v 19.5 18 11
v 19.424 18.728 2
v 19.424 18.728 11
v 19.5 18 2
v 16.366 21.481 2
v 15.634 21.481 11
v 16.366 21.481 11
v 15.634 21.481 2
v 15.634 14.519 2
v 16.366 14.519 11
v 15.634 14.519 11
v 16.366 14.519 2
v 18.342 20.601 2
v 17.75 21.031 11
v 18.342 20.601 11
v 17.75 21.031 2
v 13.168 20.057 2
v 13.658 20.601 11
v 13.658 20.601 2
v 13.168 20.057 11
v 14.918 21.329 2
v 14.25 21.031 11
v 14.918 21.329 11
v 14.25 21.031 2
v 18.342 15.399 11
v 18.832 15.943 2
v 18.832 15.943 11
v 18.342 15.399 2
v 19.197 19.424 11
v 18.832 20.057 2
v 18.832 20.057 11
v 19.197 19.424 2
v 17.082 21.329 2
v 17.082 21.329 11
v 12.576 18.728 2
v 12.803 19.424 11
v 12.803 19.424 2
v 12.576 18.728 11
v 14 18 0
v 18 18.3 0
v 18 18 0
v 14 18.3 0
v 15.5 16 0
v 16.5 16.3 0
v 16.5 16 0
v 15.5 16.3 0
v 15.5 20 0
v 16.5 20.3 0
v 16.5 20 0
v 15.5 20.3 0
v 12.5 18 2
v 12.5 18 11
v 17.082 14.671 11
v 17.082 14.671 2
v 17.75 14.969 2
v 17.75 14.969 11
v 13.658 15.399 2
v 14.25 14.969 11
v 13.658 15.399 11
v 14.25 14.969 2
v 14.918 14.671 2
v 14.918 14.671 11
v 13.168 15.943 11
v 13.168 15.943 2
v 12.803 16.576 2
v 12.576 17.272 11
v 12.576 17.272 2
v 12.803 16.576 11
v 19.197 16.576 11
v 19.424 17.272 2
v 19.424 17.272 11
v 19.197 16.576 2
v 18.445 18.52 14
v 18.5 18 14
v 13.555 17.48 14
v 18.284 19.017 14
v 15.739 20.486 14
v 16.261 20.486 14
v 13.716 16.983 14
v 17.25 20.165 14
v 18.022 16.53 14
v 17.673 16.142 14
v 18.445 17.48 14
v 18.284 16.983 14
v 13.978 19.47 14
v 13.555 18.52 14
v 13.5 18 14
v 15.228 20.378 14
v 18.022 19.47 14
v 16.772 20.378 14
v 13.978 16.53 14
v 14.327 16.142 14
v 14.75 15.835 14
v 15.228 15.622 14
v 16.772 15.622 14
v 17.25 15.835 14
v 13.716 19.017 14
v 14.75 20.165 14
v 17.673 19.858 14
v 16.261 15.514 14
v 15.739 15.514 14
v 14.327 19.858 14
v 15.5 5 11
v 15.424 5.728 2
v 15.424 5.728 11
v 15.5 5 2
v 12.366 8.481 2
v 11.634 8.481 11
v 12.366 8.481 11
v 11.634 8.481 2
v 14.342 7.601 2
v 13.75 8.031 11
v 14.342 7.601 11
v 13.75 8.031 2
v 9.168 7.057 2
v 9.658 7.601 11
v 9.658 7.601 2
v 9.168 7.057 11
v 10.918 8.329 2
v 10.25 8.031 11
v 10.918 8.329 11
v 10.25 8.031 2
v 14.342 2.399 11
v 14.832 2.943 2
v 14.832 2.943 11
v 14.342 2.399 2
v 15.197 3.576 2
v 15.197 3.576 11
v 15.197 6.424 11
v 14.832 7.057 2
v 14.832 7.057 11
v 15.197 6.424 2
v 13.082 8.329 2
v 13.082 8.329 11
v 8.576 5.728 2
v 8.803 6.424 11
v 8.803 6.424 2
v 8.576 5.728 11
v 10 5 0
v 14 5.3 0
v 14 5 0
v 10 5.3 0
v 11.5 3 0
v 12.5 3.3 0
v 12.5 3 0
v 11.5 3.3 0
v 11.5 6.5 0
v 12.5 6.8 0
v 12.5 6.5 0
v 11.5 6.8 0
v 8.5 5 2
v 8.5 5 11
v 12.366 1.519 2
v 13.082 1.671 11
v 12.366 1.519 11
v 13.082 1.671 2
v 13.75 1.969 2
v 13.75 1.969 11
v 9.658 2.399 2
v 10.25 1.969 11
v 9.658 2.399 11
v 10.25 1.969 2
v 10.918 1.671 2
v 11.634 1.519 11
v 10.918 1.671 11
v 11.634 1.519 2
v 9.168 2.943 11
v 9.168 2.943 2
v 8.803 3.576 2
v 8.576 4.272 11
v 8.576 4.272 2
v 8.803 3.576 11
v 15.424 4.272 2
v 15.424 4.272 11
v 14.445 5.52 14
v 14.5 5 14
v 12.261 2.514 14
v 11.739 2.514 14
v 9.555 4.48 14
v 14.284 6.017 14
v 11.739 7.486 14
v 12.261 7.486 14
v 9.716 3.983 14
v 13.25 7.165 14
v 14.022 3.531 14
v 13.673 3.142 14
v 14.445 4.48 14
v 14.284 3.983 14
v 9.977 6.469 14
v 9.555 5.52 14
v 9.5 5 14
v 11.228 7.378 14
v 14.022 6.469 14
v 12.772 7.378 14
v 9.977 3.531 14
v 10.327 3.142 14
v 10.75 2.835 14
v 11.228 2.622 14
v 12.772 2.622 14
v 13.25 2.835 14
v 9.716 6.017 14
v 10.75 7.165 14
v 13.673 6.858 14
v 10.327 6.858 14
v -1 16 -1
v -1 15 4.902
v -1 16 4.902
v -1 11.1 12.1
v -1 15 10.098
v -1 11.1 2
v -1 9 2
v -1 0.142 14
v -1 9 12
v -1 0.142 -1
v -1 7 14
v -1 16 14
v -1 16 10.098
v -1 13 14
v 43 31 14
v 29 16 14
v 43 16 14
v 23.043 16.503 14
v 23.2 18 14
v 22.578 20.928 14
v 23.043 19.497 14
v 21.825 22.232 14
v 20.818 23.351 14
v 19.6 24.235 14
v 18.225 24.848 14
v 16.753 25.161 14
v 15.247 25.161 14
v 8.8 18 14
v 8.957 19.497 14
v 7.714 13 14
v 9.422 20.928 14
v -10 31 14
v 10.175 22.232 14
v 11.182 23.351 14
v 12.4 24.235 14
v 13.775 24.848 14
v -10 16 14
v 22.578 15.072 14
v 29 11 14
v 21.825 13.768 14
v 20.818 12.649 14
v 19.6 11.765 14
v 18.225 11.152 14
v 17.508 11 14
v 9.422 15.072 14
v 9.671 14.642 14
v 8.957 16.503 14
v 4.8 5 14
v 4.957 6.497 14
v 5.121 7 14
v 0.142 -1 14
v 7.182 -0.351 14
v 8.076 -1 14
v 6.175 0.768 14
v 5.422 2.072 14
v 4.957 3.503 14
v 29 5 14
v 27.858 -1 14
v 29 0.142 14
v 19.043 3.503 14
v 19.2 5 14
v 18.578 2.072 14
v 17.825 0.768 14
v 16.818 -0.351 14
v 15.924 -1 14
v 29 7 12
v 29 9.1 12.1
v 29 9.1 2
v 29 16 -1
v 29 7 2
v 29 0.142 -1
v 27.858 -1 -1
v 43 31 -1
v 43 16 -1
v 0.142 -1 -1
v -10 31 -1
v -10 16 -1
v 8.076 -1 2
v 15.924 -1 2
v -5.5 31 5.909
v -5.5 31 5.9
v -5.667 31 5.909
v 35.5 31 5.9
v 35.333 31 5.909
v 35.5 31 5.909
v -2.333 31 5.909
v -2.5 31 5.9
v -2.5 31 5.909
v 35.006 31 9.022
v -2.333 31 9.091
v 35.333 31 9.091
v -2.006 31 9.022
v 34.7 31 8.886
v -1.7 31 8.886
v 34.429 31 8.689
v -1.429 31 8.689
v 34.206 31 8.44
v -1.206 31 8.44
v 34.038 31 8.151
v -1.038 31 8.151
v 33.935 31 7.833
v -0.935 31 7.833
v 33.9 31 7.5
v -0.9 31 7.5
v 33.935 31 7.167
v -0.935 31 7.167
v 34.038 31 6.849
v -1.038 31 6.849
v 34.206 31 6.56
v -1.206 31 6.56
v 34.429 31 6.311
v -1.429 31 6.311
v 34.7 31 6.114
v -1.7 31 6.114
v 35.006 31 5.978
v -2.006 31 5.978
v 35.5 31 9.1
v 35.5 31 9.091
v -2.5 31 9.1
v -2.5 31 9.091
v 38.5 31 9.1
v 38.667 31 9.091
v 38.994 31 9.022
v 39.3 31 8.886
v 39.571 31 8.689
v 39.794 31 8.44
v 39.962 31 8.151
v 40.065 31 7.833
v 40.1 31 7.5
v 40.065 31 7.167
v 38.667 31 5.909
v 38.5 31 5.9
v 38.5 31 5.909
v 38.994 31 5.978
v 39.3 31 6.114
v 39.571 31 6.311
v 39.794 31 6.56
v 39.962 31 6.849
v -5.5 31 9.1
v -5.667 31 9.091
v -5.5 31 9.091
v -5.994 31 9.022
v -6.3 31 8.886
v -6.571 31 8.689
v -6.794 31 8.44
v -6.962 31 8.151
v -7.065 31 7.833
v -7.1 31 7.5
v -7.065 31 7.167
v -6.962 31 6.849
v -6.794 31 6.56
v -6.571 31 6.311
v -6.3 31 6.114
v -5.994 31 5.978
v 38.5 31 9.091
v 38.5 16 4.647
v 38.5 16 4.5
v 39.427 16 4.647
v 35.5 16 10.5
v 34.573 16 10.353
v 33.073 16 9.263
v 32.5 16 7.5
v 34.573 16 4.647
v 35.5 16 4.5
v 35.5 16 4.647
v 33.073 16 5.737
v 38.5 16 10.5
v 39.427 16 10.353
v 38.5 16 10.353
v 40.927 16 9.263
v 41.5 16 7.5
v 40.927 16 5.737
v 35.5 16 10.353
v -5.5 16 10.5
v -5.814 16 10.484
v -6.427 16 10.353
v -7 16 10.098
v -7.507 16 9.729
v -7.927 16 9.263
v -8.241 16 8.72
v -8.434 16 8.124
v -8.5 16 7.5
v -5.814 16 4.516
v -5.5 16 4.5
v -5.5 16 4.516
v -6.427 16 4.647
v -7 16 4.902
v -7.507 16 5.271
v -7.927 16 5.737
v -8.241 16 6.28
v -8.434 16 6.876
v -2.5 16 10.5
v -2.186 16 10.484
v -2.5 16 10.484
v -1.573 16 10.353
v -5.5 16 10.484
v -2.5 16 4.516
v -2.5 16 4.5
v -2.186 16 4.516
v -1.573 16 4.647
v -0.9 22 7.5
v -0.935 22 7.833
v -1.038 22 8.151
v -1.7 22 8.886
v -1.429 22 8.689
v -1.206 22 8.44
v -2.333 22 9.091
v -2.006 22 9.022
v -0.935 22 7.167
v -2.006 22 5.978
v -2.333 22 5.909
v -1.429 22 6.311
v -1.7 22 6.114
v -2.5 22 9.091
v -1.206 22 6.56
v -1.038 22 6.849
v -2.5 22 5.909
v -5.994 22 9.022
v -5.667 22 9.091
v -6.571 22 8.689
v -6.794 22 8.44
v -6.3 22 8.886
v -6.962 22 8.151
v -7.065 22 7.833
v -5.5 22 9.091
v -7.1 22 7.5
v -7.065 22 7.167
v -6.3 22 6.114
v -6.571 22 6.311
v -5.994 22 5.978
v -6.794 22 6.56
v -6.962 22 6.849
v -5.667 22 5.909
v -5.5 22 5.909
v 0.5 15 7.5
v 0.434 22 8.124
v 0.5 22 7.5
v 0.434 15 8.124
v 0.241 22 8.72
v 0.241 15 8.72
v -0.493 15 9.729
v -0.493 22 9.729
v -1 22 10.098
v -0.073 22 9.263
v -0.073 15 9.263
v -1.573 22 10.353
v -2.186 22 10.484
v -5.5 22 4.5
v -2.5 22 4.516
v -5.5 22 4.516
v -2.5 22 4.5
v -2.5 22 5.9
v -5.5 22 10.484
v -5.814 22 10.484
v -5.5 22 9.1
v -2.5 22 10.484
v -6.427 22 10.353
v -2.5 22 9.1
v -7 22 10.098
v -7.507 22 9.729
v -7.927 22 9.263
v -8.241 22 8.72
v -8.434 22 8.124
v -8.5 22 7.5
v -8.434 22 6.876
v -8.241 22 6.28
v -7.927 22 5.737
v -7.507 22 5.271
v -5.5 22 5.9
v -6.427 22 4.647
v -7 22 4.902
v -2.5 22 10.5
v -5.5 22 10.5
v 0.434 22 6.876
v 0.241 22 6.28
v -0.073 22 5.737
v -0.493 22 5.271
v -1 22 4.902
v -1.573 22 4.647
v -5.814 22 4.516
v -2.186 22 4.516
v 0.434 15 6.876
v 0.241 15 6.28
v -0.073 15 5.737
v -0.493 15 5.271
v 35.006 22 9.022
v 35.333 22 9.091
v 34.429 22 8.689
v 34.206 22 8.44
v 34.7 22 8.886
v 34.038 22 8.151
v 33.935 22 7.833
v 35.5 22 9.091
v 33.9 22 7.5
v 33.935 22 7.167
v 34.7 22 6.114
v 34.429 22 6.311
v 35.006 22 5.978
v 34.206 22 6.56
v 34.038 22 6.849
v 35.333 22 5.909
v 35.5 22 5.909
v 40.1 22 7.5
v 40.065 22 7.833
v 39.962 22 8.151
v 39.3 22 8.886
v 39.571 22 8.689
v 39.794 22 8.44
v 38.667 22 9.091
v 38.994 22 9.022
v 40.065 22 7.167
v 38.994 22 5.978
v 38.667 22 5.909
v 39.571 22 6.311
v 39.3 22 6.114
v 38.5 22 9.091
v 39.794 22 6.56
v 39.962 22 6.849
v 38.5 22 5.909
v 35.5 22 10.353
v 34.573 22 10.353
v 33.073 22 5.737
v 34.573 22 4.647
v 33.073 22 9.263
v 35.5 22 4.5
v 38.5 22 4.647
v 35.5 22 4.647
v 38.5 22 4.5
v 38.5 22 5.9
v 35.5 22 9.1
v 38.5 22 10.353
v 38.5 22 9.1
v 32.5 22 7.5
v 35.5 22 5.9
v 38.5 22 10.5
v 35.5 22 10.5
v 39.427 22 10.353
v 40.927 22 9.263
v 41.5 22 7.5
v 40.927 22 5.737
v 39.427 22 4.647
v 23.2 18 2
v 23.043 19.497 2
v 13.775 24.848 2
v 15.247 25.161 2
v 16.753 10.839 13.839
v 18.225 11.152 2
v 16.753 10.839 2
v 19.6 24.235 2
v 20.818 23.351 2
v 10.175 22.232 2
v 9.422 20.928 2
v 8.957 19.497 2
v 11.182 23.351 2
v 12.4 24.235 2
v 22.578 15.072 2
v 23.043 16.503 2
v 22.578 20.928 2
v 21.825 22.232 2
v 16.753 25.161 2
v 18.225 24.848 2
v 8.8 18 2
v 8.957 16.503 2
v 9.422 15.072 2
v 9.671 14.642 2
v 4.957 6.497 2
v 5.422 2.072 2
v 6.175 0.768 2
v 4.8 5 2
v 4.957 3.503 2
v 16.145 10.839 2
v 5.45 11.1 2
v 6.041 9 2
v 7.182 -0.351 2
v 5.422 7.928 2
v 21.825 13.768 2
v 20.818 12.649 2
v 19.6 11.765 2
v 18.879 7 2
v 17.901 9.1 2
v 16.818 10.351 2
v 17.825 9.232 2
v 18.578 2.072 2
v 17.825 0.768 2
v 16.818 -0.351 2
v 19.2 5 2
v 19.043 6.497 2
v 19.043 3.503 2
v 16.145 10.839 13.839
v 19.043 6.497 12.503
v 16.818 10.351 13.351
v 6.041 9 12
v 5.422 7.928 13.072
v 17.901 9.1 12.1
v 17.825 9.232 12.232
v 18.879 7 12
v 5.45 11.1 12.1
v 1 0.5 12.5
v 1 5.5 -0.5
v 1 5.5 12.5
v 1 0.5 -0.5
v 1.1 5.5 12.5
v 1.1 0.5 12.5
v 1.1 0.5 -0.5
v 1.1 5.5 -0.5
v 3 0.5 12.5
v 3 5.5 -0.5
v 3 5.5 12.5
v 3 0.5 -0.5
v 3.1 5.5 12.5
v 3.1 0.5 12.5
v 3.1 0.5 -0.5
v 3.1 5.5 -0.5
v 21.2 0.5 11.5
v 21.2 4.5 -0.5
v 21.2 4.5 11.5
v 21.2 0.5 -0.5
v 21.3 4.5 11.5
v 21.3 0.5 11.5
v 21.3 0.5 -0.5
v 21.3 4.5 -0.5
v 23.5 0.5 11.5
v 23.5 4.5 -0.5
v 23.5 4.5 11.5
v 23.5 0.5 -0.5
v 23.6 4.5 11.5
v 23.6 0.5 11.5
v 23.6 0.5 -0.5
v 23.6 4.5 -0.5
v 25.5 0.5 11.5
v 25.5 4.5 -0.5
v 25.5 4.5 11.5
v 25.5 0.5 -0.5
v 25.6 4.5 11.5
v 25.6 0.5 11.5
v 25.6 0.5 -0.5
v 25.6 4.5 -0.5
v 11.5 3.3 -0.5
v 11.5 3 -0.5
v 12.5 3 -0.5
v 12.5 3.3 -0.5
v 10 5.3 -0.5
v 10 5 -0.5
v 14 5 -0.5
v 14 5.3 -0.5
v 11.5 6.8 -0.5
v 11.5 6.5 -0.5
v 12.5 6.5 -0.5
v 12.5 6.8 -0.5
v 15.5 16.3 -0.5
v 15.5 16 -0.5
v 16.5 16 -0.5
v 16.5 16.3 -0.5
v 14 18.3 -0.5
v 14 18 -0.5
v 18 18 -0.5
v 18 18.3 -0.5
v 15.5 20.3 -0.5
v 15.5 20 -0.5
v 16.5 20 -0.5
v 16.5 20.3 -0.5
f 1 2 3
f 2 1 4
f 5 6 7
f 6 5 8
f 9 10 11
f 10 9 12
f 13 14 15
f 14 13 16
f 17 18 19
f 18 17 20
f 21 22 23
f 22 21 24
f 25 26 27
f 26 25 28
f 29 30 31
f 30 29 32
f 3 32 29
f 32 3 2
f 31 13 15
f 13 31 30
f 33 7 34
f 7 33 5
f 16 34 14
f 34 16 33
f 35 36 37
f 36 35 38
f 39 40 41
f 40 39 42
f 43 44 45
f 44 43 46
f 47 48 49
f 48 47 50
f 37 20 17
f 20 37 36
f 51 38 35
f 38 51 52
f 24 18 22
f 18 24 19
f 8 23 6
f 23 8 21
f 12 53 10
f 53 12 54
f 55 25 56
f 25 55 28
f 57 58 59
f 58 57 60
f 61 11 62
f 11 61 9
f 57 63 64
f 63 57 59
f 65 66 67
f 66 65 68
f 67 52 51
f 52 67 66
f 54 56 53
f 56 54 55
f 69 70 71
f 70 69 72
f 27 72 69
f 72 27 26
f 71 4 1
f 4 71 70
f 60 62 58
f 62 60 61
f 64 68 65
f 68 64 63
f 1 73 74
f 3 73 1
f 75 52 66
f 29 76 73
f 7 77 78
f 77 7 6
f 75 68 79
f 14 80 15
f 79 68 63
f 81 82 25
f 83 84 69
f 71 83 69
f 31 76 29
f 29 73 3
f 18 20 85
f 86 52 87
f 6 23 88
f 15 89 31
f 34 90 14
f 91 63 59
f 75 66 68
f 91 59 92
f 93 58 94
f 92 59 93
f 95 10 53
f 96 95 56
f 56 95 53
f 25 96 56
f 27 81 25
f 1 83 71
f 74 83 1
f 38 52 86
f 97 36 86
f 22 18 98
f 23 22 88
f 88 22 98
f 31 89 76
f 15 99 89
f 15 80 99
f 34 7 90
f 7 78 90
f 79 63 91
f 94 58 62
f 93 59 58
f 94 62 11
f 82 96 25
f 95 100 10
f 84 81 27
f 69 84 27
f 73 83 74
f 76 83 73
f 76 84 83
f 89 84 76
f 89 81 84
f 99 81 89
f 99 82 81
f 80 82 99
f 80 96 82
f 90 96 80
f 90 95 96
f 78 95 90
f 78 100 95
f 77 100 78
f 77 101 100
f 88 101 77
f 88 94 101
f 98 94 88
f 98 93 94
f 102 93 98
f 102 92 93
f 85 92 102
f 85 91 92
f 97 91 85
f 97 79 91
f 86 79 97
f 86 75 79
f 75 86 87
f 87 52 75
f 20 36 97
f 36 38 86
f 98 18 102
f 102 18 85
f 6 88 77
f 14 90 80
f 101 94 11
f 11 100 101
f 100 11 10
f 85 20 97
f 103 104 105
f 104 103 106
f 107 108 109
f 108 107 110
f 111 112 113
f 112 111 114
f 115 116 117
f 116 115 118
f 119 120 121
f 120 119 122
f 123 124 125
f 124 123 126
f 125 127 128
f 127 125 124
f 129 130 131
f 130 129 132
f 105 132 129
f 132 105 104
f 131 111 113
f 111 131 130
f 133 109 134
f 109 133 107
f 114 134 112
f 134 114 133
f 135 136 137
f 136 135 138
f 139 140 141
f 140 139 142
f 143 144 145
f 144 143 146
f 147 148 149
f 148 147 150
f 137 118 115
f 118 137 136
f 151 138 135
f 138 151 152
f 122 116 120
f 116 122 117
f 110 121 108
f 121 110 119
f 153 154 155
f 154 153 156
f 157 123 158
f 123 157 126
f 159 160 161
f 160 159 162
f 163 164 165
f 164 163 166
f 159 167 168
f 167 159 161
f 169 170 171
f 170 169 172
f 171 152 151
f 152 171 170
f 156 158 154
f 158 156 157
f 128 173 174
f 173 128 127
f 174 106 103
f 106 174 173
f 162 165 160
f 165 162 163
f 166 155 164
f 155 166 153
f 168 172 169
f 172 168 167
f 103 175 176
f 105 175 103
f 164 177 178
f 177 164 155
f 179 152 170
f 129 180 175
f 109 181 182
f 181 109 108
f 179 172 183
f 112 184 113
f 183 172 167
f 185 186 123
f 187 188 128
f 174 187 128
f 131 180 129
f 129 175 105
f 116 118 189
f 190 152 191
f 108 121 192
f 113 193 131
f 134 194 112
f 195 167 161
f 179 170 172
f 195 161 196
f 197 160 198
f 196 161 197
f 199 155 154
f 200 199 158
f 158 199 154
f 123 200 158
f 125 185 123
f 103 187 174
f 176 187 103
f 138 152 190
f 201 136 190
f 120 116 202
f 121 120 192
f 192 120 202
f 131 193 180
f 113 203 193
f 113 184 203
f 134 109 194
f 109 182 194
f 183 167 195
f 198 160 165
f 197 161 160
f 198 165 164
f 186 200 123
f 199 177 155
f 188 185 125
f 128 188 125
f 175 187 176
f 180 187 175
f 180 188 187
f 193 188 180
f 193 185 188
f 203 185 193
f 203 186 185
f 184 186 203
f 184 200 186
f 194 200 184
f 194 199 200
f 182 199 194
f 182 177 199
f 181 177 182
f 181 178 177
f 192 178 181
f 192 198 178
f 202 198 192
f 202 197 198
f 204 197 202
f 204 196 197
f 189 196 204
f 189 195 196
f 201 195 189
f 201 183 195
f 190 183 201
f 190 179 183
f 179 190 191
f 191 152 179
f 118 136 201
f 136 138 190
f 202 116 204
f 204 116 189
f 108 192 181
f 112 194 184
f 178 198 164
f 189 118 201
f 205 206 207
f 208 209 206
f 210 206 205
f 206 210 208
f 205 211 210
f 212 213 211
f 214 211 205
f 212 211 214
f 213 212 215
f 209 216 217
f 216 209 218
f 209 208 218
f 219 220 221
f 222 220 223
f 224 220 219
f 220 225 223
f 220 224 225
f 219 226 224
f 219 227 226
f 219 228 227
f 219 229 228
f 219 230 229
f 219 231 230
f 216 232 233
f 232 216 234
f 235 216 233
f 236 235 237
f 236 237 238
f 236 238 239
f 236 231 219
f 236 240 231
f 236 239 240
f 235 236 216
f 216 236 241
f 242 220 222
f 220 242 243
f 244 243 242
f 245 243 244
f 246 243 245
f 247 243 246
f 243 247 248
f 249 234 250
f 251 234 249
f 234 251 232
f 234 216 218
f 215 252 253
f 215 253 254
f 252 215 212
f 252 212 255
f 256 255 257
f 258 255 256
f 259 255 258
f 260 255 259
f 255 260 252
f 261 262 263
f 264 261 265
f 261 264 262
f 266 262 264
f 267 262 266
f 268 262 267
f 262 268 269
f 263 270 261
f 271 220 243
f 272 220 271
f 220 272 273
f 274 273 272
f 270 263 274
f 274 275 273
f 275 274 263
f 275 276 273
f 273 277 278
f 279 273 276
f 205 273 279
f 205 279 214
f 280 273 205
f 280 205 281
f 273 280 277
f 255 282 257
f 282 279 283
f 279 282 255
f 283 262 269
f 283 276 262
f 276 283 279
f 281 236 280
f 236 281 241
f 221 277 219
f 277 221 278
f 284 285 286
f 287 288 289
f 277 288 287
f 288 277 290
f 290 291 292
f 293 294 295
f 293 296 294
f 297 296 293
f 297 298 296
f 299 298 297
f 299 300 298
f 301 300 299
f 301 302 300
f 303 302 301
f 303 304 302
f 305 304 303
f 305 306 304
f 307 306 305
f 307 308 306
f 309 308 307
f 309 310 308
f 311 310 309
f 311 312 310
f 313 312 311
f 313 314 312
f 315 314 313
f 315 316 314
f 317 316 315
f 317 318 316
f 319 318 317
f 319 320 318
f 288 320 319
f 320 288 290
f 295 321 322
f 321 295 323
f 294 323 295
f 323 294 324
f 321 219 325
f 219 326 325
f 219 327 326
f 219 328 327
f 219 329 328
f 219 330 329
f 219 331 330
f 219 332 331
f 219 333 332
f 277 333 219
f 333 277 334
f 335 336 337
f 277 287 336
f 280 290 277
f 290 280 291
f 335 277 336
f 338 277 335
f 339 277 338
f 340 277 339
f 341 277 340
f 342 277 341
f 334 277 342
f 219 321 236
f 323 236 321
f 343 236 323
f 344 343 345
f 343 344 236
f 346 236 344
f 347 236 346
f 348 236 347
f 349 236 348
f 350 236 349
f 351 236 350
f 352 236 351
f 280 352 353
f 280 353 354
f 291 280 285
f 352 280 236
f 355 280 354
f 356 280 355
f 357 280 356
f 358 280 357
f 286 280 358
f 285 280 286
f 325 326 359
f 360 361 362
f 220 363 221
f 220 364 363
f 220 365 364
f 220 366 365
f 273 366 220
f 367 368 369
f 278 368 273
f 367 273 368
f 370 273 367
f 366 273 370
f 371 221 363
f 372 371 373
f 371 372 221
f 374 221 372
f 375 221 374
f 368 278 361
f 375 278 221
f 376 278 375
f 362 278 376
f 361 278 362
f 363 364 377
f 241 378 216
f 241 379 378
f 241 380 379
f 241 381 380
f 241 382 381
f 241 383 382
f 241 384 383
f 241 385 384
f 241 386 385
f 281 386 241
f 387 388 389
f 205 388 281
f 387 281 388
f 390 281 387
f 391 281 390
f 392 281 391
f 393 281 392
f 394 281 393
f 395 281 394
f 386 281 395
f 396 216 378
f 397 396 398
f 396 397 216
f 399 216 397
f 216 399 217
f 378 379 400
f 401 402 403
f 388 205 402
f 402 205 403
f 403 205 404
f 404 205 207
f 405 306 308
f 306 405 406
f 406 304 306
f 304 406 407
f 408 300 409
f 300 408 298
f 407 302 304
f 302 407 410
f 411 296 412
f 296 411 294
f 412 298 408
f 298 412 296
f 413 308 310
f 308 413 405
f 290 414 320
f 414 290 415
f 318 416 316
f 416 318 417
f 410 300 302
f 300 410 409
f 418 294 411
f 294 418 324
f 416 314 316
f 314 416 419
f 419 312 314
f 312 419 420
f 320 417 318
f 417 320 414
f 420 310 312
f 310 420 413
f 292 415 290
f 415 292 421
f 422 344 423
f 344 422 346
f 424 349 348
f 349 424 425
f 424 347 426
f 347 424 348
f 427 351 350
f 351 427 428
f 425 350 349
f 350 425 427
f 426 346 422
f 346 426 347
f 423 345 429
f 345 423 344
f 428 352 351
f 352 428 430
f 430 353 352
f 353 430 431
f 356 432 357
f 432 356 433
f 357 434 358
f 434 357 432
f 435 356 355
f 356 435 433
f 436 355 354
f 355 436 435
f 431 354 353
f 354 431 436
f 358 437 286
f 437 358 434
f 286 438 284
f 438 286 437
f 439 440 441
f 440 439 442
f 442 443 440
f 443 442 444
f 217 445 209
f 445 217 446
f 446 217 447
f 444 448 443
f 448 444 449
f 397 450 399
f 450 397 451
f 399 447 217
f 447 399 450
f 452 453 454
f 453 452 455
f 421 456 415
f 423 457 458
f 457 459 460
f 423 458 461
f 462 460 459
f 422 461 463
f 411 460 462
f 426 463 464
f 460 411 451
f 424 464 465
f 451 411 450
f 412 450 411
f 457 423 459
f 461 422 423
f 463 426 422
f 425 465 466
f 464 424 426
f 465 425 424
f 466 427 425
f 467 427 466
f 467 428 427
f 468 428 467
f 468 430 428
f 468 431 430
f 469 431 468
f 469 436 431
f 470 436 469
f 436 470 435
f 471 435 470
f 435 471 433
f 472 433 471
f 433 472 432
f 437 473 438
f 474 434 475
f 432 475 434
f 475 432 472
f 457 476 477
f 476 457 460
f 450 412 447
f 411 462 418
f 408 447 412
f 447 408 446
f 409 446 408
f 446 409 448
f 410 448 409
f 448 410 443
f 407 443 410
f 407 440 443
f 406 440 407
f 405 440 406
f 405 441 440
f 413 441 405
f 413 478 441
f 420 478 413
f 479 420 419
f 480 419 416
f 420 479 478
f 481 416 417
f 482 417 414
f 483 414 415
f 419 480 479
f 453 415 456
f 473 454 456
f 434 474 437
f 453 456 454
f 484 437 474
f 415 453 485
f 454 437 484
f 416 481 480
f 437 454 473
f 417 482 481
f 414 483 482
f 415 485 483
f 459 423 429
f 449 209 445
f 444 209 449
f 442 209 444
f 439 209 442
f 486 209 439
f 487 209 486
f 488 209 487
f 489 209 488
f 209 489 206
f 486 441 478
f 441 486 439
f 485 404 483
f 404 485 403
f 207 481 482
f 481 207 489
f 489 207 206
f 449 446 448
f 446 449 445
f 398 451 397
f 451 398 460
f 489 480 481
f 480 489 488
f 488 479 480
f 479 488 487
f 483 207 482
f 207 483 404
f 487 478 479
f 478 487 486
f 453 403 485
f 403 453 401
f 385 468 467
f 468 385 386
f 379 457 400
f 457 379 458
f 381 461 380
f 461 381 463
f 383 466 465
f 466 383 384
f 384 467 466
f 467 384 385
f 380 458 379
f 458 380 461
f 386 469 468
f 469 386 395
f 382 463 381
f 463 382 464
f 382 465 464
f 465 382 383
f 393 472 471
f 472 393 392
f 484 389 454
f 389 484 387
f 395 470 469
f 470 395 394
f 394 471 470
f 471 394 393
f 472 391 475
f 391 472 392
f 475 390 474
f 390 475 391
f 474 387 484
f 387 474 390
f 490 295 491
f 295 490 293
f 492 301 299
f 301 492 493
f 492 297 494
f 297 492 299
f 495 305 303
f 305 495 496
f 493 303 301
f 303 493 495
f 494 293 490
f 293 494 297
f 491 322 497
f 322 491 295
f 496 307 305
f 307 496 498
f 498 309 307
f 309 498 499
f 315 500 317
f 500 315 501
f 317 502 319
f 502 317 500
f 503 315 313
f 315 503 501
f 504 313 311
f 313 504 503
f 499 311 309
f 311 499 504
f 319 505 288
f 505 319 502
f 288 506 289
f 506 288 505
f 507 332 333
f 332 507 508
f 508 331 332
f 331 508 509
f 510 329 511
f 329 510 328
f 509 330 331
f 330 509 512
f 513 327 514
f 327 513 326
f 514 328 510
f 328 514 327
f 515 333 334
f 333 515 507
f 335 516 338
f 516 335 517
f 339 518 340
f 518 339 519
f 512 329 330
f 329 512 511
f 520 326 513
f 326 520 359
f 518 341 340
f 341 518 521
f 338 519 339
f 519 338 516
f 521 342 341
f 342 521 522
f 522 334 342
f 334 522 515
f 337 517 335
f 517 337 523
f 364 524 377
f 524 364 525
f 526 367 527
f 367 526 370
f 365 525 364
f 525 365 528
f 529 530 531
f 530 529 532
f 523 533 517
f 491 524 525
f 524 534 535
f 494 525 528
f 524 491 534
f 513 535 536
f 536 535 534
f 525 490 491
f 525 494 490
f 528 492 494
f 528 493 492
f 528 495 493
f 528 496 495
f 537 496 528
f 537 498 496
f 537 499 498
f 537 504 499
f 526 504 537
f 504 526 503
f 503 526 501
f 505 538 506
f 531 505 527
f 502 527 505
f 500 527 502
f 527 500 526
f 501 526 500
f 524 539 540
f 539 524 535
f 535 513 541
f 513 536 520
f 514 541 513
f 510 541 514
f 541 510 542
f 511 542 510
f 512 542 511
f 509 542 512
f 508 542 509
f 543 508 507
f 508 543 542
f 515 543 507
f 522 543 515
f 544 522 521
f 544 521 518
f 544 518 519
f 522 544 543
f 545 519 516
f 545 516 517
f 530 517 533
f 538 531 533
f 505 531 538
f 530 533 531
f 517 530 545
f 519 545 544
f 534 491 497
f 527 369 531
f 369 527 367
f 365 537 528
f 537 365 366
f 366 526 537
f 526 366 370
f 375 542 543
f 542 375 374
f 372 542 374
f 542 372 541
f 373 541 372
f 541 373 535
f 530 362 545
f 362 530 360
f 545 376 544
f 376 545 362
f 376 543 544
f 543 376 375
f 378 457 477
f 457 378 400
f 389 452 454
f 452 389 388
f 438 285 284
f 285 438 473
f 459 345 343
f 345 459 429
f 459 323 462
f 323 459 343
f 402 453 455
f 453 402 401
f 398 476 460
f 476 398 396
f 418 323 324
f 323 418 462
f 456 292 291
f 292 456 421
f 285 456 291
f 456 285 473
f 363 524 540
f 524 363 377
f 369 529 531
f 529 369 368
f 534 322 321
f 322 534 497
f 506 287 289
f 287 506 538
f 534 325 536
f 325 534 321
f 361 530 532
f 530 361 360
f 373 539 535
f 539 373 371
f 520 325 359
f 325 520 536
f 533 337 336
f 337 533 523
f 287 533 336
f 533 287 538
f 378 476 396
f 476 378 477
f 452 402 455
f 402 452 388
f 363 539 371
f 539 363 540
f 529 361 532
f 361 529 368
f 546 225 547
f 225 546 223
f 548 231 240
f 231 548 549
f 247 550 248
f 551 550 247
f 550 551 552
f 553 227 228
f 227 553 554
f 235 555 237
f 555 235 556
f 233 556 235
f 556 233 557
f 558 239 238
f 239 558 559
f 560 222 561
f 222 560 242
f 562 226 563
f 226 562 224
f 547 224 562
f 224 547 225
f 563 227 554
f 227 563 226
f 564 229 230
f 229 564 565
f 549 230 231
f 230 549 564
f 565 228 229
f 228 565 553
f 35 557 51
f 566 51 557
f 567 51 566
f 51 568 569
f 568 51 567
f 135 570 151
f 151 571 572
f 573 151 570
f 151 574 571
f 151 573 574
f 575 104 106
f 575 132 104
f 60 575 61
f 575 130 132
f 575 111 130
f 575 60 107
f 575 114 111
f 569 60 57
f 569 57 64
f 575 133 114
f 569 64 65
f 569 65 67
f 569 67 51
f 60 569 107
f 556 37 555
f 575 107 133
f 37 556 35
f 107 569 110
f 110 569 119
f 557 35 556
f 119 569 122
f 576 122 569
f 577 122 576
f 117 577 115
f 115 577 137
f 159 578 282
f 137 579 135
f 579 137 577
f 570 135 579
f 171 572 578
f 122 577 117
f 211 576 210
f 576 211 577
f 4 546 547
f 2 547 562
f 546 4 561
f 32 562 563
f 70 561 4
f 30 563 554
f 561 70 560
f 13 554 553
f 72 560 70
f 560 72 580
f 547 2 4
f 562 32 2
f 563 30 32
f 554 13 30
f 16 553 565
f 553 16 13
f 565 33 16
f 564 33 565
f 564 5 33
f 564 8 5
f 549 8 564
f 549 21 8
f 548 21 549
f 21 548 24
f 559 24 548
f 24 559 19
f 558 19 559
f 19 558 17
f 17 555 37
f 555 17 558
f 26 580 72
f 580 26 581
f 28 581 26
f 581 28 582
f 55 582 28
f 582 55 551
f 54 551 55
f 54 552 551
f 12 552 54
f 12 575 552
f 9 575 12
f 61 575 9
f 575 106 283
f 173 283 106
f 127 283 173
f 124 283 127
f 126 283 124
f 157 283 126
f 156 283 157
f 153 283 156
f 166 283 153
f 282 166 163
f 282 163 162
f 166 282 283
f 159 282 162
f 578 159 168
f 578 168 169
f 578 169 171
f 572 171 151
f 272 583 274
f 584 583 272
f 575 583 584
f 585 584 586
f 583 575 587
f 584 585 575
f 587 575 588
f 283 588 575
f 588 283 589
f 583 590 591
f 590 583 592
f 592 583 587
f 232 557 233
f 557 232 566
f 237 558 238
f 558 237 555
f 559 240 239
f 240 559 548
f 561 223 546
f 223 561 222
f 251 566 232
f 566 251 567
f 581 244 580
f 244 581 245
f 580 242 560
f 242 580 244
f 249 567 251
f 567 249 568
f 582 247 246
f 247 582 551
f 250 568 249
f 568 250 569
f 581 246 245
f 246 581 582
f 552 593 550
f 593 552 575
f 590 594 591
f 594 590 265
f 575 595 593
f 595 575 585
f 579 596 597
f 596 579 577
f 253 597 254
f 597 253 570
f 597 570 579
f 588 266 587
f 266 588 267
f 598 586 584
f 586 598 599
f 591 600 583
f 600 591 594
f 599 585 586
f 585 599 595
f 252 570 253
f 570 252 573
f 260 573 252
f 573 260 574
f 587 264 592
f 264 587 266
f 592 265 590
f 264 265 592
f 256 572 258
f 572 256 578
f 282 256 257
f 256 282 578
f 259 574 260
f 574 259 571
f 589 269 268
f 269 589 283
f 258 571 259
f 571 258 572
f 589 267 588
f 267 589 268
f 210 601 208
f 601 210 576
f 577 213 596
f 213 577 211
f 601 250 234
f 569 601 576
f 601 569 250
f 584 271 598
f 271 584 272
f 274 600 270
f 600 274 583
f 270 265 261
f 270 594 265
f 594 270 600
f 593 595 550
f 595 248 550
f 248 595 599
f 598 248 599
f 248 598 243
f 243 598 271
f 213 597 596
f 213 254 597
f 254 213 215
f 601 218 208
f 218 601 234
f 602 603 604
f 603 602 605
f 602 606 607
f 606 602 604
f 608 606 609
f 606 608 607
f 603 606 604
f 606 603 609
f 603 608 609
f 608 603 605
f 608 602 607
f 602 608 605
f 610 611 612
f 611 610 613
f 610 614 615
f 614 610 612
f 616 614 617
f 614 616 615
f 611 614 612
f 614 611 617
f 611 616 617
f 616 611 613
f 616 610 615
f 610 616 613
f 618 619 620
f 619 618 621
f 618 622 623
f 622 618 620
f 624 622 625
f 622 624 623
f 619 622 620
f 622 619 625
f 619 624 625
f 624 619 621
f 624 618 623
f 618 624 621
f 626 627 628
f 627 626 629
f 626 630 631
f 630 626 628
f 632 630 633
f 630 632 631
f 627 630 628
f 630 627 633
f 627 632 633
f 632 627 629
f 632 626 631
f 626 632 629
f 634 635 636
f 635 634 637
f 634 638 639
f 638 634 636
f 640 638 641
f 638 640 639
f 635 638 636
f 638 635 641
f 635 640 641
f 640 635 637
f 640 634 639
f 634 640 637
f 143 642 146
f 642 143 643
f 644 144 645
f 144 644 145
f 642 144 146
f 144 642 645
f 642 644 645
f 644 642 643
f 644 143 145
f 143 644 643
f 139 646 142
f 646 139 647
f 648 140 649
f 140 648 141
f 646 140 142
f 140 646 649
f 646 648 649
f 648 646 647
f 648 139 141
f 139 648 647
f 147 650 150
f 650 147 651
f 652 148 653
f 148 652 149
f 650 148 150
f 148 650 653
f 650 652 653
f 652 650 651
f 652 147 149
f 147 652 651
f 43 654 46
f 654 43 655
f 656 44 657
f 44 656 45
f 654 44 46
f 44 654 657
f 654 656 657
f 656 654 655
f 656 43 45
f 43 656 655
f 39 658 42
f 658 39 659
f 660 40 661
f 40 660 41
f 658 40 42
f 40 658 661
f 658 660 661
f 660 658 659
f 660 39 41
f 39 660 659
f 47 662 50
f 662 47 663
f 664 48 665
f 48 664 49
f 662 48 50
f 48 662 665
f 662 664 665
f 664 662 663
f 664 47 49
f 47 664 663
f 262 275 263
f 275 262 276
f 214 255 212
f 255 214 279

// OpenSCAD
//Carbon i3 Modified

// PRUSA iteration3
// Y belt holder
// GNU GPL v3
// Josef Průša <iam@josefprusa.cz> and contributors
// http://www.reprap.org/wiki/Prusa_Mendel
// http://prusamendel.org

module main_body()
{
translate([-1, -1, -1 ]) cube([ 30, 27, 15 ]);
translate([-10, 16, -1 ]) cube([ 53, 15, 15 ]);
translate([-10, 23, -1 ]) cube([ 53, 8, 15 ]);
}

module belt_holders()
{
    
   translate([ 16, 18, 0 ]) cylinder( h=11, r=3.5, $fn=30 );  // upper belt holder
    translate([ 16, 18, 11 ]) cylinder( h=3, r1=3.5, r2=2.5, $fn=30 );  // upper belt holder cone
    
    translate([ 12, 5, 0 ]) cylinder( h=11, r=3.5, $fn=30 );  // lower belt holder
    translate([ 12, 5, 11 ]) cylinder( h=3 , r1=3.5, r2=2.5, $fn=30 );  // lower belt holder cone
}

module screws()
{
    translate( [ -2.5 , 33 , 7.5 ] ) rotate([90,0,0]) cylinder( h = 15, r = 1.6, $fn=30);  //screw hole
    translate( [ -5.5 , 33 , 7.5 ] ) rotate([90,0,0]) cylinder( h = 15, r = 1.6, $fn=30);  //screw hole
    translate( [ -2.5, 24-2 , 7.5 ] ) rotate([90,0,0]) cylinder( h = 9-2, r = 3, $fn=30);  //screw hole - head
    translate( [ -5.5 , 24-2 , 7.5 ] ) rotate([90,0,0]) cylinder( h = 9, r = 3, $fn=30);  //screw hole - head
    
    translate( [ 35.5 , 33 , 7.5 ] ) rotate([90,0,0]) cylinder( h = 15, r = 1.6, $fn=30);  //screw hole
    translate( [ 38.5 , 33 , 7.5 ] ) rotate([90,0,0]) cylinder( h = 15, r = 1.6, $fn=30);  //screw hole
    
    translate( [ 35.5 , 24-2 , 7.5 ] ) rotate([90,0,0]) cylinder( h = 9, r = 3);  //screw hole - head
    translate( [ 38.5 , 24-2 , 7.5 ] ) rotate([90,0,0]) cylinder( h = 9, r = 3);  //screw hole - head
    
    translate([-5.5, 21, 5.9 ]) cube([ 3, 11, 3.2 ]);
    translate([35.5, 21, 5.9 ]) cube([ 3, 11, 3.2 ]);
    
    translate([-5.5, 15-2, 4.5 ]) cube([ 3, 9, 6 ]);
    translate([35.5, 15-2, 4.5 ]) cube([ 3, 9, 6 ]);
}

belt_holders();

difference()
{
main_body();
    
translate([ 16, 18, 2 ]) cylinder( h = 16, r = 7.2, $fn=30 );  // upper belt space cutaway
translate([ 12, 5, 2 ]) cylinder( h = 16, r = 7.2, $fn=30 );  // lower belt space cutaway

translate([-20, 9, 2]) cube([ 28, 2.1, 16 ]); 
rotate([0,0,40]) translate([11, 1, 2 ]) cube([ 10, 4, 16 ]);     
    
translate([10, 7, 2 ]) cube([ 32, 2.1, 16 ]); 
    
translate([16, 8, 11 ]) rotate([45,0,0]) cube([ 15, 5, 5 ]);     
translate([-2, 10, 11 ]) rotate([45,0,0]) cube([ 10, 5, 5 ]);     

screws();
    


    // print part reinforcement
    translate([1,0.5,-0.5]) cube([0.1,5,13]);     
    translate([3,0.5,-0.5]) cube([0.1,5,13]);     
    translate([21.2,0.5,-0.5]) cube([0.1,4,12]);
    translate([23.5,0.5,-0.5]) cube([0.1,4,12]);
    translate([25.5,0.5,-0.5]) cube([0.1,4,12]);
    translate([11.5,3,-0.5]) cube([1,0.3,12]);
    translate([10,5,-0.5]) cube([4,0.3,12]);
    translate([11.5,6.5,-0.5]) cube([1,0.3,12]);
    translate([15.5,16,-0.5]) cube([1,0.3,12]);
    translate([14,18,-0.5]) cube([4,0.3,12]);
    translate([15.5,20,-0.5]) cube([1,0.3,12]);    
 
 
    // corner cutoff
    translate([30,-13,-2]) rotate([0,0,45]) cube([10,10,20]);    
    translate([-2,-13,-2]) rotate([0,0,45]) cube([10,10,20]);    
    
    
}
